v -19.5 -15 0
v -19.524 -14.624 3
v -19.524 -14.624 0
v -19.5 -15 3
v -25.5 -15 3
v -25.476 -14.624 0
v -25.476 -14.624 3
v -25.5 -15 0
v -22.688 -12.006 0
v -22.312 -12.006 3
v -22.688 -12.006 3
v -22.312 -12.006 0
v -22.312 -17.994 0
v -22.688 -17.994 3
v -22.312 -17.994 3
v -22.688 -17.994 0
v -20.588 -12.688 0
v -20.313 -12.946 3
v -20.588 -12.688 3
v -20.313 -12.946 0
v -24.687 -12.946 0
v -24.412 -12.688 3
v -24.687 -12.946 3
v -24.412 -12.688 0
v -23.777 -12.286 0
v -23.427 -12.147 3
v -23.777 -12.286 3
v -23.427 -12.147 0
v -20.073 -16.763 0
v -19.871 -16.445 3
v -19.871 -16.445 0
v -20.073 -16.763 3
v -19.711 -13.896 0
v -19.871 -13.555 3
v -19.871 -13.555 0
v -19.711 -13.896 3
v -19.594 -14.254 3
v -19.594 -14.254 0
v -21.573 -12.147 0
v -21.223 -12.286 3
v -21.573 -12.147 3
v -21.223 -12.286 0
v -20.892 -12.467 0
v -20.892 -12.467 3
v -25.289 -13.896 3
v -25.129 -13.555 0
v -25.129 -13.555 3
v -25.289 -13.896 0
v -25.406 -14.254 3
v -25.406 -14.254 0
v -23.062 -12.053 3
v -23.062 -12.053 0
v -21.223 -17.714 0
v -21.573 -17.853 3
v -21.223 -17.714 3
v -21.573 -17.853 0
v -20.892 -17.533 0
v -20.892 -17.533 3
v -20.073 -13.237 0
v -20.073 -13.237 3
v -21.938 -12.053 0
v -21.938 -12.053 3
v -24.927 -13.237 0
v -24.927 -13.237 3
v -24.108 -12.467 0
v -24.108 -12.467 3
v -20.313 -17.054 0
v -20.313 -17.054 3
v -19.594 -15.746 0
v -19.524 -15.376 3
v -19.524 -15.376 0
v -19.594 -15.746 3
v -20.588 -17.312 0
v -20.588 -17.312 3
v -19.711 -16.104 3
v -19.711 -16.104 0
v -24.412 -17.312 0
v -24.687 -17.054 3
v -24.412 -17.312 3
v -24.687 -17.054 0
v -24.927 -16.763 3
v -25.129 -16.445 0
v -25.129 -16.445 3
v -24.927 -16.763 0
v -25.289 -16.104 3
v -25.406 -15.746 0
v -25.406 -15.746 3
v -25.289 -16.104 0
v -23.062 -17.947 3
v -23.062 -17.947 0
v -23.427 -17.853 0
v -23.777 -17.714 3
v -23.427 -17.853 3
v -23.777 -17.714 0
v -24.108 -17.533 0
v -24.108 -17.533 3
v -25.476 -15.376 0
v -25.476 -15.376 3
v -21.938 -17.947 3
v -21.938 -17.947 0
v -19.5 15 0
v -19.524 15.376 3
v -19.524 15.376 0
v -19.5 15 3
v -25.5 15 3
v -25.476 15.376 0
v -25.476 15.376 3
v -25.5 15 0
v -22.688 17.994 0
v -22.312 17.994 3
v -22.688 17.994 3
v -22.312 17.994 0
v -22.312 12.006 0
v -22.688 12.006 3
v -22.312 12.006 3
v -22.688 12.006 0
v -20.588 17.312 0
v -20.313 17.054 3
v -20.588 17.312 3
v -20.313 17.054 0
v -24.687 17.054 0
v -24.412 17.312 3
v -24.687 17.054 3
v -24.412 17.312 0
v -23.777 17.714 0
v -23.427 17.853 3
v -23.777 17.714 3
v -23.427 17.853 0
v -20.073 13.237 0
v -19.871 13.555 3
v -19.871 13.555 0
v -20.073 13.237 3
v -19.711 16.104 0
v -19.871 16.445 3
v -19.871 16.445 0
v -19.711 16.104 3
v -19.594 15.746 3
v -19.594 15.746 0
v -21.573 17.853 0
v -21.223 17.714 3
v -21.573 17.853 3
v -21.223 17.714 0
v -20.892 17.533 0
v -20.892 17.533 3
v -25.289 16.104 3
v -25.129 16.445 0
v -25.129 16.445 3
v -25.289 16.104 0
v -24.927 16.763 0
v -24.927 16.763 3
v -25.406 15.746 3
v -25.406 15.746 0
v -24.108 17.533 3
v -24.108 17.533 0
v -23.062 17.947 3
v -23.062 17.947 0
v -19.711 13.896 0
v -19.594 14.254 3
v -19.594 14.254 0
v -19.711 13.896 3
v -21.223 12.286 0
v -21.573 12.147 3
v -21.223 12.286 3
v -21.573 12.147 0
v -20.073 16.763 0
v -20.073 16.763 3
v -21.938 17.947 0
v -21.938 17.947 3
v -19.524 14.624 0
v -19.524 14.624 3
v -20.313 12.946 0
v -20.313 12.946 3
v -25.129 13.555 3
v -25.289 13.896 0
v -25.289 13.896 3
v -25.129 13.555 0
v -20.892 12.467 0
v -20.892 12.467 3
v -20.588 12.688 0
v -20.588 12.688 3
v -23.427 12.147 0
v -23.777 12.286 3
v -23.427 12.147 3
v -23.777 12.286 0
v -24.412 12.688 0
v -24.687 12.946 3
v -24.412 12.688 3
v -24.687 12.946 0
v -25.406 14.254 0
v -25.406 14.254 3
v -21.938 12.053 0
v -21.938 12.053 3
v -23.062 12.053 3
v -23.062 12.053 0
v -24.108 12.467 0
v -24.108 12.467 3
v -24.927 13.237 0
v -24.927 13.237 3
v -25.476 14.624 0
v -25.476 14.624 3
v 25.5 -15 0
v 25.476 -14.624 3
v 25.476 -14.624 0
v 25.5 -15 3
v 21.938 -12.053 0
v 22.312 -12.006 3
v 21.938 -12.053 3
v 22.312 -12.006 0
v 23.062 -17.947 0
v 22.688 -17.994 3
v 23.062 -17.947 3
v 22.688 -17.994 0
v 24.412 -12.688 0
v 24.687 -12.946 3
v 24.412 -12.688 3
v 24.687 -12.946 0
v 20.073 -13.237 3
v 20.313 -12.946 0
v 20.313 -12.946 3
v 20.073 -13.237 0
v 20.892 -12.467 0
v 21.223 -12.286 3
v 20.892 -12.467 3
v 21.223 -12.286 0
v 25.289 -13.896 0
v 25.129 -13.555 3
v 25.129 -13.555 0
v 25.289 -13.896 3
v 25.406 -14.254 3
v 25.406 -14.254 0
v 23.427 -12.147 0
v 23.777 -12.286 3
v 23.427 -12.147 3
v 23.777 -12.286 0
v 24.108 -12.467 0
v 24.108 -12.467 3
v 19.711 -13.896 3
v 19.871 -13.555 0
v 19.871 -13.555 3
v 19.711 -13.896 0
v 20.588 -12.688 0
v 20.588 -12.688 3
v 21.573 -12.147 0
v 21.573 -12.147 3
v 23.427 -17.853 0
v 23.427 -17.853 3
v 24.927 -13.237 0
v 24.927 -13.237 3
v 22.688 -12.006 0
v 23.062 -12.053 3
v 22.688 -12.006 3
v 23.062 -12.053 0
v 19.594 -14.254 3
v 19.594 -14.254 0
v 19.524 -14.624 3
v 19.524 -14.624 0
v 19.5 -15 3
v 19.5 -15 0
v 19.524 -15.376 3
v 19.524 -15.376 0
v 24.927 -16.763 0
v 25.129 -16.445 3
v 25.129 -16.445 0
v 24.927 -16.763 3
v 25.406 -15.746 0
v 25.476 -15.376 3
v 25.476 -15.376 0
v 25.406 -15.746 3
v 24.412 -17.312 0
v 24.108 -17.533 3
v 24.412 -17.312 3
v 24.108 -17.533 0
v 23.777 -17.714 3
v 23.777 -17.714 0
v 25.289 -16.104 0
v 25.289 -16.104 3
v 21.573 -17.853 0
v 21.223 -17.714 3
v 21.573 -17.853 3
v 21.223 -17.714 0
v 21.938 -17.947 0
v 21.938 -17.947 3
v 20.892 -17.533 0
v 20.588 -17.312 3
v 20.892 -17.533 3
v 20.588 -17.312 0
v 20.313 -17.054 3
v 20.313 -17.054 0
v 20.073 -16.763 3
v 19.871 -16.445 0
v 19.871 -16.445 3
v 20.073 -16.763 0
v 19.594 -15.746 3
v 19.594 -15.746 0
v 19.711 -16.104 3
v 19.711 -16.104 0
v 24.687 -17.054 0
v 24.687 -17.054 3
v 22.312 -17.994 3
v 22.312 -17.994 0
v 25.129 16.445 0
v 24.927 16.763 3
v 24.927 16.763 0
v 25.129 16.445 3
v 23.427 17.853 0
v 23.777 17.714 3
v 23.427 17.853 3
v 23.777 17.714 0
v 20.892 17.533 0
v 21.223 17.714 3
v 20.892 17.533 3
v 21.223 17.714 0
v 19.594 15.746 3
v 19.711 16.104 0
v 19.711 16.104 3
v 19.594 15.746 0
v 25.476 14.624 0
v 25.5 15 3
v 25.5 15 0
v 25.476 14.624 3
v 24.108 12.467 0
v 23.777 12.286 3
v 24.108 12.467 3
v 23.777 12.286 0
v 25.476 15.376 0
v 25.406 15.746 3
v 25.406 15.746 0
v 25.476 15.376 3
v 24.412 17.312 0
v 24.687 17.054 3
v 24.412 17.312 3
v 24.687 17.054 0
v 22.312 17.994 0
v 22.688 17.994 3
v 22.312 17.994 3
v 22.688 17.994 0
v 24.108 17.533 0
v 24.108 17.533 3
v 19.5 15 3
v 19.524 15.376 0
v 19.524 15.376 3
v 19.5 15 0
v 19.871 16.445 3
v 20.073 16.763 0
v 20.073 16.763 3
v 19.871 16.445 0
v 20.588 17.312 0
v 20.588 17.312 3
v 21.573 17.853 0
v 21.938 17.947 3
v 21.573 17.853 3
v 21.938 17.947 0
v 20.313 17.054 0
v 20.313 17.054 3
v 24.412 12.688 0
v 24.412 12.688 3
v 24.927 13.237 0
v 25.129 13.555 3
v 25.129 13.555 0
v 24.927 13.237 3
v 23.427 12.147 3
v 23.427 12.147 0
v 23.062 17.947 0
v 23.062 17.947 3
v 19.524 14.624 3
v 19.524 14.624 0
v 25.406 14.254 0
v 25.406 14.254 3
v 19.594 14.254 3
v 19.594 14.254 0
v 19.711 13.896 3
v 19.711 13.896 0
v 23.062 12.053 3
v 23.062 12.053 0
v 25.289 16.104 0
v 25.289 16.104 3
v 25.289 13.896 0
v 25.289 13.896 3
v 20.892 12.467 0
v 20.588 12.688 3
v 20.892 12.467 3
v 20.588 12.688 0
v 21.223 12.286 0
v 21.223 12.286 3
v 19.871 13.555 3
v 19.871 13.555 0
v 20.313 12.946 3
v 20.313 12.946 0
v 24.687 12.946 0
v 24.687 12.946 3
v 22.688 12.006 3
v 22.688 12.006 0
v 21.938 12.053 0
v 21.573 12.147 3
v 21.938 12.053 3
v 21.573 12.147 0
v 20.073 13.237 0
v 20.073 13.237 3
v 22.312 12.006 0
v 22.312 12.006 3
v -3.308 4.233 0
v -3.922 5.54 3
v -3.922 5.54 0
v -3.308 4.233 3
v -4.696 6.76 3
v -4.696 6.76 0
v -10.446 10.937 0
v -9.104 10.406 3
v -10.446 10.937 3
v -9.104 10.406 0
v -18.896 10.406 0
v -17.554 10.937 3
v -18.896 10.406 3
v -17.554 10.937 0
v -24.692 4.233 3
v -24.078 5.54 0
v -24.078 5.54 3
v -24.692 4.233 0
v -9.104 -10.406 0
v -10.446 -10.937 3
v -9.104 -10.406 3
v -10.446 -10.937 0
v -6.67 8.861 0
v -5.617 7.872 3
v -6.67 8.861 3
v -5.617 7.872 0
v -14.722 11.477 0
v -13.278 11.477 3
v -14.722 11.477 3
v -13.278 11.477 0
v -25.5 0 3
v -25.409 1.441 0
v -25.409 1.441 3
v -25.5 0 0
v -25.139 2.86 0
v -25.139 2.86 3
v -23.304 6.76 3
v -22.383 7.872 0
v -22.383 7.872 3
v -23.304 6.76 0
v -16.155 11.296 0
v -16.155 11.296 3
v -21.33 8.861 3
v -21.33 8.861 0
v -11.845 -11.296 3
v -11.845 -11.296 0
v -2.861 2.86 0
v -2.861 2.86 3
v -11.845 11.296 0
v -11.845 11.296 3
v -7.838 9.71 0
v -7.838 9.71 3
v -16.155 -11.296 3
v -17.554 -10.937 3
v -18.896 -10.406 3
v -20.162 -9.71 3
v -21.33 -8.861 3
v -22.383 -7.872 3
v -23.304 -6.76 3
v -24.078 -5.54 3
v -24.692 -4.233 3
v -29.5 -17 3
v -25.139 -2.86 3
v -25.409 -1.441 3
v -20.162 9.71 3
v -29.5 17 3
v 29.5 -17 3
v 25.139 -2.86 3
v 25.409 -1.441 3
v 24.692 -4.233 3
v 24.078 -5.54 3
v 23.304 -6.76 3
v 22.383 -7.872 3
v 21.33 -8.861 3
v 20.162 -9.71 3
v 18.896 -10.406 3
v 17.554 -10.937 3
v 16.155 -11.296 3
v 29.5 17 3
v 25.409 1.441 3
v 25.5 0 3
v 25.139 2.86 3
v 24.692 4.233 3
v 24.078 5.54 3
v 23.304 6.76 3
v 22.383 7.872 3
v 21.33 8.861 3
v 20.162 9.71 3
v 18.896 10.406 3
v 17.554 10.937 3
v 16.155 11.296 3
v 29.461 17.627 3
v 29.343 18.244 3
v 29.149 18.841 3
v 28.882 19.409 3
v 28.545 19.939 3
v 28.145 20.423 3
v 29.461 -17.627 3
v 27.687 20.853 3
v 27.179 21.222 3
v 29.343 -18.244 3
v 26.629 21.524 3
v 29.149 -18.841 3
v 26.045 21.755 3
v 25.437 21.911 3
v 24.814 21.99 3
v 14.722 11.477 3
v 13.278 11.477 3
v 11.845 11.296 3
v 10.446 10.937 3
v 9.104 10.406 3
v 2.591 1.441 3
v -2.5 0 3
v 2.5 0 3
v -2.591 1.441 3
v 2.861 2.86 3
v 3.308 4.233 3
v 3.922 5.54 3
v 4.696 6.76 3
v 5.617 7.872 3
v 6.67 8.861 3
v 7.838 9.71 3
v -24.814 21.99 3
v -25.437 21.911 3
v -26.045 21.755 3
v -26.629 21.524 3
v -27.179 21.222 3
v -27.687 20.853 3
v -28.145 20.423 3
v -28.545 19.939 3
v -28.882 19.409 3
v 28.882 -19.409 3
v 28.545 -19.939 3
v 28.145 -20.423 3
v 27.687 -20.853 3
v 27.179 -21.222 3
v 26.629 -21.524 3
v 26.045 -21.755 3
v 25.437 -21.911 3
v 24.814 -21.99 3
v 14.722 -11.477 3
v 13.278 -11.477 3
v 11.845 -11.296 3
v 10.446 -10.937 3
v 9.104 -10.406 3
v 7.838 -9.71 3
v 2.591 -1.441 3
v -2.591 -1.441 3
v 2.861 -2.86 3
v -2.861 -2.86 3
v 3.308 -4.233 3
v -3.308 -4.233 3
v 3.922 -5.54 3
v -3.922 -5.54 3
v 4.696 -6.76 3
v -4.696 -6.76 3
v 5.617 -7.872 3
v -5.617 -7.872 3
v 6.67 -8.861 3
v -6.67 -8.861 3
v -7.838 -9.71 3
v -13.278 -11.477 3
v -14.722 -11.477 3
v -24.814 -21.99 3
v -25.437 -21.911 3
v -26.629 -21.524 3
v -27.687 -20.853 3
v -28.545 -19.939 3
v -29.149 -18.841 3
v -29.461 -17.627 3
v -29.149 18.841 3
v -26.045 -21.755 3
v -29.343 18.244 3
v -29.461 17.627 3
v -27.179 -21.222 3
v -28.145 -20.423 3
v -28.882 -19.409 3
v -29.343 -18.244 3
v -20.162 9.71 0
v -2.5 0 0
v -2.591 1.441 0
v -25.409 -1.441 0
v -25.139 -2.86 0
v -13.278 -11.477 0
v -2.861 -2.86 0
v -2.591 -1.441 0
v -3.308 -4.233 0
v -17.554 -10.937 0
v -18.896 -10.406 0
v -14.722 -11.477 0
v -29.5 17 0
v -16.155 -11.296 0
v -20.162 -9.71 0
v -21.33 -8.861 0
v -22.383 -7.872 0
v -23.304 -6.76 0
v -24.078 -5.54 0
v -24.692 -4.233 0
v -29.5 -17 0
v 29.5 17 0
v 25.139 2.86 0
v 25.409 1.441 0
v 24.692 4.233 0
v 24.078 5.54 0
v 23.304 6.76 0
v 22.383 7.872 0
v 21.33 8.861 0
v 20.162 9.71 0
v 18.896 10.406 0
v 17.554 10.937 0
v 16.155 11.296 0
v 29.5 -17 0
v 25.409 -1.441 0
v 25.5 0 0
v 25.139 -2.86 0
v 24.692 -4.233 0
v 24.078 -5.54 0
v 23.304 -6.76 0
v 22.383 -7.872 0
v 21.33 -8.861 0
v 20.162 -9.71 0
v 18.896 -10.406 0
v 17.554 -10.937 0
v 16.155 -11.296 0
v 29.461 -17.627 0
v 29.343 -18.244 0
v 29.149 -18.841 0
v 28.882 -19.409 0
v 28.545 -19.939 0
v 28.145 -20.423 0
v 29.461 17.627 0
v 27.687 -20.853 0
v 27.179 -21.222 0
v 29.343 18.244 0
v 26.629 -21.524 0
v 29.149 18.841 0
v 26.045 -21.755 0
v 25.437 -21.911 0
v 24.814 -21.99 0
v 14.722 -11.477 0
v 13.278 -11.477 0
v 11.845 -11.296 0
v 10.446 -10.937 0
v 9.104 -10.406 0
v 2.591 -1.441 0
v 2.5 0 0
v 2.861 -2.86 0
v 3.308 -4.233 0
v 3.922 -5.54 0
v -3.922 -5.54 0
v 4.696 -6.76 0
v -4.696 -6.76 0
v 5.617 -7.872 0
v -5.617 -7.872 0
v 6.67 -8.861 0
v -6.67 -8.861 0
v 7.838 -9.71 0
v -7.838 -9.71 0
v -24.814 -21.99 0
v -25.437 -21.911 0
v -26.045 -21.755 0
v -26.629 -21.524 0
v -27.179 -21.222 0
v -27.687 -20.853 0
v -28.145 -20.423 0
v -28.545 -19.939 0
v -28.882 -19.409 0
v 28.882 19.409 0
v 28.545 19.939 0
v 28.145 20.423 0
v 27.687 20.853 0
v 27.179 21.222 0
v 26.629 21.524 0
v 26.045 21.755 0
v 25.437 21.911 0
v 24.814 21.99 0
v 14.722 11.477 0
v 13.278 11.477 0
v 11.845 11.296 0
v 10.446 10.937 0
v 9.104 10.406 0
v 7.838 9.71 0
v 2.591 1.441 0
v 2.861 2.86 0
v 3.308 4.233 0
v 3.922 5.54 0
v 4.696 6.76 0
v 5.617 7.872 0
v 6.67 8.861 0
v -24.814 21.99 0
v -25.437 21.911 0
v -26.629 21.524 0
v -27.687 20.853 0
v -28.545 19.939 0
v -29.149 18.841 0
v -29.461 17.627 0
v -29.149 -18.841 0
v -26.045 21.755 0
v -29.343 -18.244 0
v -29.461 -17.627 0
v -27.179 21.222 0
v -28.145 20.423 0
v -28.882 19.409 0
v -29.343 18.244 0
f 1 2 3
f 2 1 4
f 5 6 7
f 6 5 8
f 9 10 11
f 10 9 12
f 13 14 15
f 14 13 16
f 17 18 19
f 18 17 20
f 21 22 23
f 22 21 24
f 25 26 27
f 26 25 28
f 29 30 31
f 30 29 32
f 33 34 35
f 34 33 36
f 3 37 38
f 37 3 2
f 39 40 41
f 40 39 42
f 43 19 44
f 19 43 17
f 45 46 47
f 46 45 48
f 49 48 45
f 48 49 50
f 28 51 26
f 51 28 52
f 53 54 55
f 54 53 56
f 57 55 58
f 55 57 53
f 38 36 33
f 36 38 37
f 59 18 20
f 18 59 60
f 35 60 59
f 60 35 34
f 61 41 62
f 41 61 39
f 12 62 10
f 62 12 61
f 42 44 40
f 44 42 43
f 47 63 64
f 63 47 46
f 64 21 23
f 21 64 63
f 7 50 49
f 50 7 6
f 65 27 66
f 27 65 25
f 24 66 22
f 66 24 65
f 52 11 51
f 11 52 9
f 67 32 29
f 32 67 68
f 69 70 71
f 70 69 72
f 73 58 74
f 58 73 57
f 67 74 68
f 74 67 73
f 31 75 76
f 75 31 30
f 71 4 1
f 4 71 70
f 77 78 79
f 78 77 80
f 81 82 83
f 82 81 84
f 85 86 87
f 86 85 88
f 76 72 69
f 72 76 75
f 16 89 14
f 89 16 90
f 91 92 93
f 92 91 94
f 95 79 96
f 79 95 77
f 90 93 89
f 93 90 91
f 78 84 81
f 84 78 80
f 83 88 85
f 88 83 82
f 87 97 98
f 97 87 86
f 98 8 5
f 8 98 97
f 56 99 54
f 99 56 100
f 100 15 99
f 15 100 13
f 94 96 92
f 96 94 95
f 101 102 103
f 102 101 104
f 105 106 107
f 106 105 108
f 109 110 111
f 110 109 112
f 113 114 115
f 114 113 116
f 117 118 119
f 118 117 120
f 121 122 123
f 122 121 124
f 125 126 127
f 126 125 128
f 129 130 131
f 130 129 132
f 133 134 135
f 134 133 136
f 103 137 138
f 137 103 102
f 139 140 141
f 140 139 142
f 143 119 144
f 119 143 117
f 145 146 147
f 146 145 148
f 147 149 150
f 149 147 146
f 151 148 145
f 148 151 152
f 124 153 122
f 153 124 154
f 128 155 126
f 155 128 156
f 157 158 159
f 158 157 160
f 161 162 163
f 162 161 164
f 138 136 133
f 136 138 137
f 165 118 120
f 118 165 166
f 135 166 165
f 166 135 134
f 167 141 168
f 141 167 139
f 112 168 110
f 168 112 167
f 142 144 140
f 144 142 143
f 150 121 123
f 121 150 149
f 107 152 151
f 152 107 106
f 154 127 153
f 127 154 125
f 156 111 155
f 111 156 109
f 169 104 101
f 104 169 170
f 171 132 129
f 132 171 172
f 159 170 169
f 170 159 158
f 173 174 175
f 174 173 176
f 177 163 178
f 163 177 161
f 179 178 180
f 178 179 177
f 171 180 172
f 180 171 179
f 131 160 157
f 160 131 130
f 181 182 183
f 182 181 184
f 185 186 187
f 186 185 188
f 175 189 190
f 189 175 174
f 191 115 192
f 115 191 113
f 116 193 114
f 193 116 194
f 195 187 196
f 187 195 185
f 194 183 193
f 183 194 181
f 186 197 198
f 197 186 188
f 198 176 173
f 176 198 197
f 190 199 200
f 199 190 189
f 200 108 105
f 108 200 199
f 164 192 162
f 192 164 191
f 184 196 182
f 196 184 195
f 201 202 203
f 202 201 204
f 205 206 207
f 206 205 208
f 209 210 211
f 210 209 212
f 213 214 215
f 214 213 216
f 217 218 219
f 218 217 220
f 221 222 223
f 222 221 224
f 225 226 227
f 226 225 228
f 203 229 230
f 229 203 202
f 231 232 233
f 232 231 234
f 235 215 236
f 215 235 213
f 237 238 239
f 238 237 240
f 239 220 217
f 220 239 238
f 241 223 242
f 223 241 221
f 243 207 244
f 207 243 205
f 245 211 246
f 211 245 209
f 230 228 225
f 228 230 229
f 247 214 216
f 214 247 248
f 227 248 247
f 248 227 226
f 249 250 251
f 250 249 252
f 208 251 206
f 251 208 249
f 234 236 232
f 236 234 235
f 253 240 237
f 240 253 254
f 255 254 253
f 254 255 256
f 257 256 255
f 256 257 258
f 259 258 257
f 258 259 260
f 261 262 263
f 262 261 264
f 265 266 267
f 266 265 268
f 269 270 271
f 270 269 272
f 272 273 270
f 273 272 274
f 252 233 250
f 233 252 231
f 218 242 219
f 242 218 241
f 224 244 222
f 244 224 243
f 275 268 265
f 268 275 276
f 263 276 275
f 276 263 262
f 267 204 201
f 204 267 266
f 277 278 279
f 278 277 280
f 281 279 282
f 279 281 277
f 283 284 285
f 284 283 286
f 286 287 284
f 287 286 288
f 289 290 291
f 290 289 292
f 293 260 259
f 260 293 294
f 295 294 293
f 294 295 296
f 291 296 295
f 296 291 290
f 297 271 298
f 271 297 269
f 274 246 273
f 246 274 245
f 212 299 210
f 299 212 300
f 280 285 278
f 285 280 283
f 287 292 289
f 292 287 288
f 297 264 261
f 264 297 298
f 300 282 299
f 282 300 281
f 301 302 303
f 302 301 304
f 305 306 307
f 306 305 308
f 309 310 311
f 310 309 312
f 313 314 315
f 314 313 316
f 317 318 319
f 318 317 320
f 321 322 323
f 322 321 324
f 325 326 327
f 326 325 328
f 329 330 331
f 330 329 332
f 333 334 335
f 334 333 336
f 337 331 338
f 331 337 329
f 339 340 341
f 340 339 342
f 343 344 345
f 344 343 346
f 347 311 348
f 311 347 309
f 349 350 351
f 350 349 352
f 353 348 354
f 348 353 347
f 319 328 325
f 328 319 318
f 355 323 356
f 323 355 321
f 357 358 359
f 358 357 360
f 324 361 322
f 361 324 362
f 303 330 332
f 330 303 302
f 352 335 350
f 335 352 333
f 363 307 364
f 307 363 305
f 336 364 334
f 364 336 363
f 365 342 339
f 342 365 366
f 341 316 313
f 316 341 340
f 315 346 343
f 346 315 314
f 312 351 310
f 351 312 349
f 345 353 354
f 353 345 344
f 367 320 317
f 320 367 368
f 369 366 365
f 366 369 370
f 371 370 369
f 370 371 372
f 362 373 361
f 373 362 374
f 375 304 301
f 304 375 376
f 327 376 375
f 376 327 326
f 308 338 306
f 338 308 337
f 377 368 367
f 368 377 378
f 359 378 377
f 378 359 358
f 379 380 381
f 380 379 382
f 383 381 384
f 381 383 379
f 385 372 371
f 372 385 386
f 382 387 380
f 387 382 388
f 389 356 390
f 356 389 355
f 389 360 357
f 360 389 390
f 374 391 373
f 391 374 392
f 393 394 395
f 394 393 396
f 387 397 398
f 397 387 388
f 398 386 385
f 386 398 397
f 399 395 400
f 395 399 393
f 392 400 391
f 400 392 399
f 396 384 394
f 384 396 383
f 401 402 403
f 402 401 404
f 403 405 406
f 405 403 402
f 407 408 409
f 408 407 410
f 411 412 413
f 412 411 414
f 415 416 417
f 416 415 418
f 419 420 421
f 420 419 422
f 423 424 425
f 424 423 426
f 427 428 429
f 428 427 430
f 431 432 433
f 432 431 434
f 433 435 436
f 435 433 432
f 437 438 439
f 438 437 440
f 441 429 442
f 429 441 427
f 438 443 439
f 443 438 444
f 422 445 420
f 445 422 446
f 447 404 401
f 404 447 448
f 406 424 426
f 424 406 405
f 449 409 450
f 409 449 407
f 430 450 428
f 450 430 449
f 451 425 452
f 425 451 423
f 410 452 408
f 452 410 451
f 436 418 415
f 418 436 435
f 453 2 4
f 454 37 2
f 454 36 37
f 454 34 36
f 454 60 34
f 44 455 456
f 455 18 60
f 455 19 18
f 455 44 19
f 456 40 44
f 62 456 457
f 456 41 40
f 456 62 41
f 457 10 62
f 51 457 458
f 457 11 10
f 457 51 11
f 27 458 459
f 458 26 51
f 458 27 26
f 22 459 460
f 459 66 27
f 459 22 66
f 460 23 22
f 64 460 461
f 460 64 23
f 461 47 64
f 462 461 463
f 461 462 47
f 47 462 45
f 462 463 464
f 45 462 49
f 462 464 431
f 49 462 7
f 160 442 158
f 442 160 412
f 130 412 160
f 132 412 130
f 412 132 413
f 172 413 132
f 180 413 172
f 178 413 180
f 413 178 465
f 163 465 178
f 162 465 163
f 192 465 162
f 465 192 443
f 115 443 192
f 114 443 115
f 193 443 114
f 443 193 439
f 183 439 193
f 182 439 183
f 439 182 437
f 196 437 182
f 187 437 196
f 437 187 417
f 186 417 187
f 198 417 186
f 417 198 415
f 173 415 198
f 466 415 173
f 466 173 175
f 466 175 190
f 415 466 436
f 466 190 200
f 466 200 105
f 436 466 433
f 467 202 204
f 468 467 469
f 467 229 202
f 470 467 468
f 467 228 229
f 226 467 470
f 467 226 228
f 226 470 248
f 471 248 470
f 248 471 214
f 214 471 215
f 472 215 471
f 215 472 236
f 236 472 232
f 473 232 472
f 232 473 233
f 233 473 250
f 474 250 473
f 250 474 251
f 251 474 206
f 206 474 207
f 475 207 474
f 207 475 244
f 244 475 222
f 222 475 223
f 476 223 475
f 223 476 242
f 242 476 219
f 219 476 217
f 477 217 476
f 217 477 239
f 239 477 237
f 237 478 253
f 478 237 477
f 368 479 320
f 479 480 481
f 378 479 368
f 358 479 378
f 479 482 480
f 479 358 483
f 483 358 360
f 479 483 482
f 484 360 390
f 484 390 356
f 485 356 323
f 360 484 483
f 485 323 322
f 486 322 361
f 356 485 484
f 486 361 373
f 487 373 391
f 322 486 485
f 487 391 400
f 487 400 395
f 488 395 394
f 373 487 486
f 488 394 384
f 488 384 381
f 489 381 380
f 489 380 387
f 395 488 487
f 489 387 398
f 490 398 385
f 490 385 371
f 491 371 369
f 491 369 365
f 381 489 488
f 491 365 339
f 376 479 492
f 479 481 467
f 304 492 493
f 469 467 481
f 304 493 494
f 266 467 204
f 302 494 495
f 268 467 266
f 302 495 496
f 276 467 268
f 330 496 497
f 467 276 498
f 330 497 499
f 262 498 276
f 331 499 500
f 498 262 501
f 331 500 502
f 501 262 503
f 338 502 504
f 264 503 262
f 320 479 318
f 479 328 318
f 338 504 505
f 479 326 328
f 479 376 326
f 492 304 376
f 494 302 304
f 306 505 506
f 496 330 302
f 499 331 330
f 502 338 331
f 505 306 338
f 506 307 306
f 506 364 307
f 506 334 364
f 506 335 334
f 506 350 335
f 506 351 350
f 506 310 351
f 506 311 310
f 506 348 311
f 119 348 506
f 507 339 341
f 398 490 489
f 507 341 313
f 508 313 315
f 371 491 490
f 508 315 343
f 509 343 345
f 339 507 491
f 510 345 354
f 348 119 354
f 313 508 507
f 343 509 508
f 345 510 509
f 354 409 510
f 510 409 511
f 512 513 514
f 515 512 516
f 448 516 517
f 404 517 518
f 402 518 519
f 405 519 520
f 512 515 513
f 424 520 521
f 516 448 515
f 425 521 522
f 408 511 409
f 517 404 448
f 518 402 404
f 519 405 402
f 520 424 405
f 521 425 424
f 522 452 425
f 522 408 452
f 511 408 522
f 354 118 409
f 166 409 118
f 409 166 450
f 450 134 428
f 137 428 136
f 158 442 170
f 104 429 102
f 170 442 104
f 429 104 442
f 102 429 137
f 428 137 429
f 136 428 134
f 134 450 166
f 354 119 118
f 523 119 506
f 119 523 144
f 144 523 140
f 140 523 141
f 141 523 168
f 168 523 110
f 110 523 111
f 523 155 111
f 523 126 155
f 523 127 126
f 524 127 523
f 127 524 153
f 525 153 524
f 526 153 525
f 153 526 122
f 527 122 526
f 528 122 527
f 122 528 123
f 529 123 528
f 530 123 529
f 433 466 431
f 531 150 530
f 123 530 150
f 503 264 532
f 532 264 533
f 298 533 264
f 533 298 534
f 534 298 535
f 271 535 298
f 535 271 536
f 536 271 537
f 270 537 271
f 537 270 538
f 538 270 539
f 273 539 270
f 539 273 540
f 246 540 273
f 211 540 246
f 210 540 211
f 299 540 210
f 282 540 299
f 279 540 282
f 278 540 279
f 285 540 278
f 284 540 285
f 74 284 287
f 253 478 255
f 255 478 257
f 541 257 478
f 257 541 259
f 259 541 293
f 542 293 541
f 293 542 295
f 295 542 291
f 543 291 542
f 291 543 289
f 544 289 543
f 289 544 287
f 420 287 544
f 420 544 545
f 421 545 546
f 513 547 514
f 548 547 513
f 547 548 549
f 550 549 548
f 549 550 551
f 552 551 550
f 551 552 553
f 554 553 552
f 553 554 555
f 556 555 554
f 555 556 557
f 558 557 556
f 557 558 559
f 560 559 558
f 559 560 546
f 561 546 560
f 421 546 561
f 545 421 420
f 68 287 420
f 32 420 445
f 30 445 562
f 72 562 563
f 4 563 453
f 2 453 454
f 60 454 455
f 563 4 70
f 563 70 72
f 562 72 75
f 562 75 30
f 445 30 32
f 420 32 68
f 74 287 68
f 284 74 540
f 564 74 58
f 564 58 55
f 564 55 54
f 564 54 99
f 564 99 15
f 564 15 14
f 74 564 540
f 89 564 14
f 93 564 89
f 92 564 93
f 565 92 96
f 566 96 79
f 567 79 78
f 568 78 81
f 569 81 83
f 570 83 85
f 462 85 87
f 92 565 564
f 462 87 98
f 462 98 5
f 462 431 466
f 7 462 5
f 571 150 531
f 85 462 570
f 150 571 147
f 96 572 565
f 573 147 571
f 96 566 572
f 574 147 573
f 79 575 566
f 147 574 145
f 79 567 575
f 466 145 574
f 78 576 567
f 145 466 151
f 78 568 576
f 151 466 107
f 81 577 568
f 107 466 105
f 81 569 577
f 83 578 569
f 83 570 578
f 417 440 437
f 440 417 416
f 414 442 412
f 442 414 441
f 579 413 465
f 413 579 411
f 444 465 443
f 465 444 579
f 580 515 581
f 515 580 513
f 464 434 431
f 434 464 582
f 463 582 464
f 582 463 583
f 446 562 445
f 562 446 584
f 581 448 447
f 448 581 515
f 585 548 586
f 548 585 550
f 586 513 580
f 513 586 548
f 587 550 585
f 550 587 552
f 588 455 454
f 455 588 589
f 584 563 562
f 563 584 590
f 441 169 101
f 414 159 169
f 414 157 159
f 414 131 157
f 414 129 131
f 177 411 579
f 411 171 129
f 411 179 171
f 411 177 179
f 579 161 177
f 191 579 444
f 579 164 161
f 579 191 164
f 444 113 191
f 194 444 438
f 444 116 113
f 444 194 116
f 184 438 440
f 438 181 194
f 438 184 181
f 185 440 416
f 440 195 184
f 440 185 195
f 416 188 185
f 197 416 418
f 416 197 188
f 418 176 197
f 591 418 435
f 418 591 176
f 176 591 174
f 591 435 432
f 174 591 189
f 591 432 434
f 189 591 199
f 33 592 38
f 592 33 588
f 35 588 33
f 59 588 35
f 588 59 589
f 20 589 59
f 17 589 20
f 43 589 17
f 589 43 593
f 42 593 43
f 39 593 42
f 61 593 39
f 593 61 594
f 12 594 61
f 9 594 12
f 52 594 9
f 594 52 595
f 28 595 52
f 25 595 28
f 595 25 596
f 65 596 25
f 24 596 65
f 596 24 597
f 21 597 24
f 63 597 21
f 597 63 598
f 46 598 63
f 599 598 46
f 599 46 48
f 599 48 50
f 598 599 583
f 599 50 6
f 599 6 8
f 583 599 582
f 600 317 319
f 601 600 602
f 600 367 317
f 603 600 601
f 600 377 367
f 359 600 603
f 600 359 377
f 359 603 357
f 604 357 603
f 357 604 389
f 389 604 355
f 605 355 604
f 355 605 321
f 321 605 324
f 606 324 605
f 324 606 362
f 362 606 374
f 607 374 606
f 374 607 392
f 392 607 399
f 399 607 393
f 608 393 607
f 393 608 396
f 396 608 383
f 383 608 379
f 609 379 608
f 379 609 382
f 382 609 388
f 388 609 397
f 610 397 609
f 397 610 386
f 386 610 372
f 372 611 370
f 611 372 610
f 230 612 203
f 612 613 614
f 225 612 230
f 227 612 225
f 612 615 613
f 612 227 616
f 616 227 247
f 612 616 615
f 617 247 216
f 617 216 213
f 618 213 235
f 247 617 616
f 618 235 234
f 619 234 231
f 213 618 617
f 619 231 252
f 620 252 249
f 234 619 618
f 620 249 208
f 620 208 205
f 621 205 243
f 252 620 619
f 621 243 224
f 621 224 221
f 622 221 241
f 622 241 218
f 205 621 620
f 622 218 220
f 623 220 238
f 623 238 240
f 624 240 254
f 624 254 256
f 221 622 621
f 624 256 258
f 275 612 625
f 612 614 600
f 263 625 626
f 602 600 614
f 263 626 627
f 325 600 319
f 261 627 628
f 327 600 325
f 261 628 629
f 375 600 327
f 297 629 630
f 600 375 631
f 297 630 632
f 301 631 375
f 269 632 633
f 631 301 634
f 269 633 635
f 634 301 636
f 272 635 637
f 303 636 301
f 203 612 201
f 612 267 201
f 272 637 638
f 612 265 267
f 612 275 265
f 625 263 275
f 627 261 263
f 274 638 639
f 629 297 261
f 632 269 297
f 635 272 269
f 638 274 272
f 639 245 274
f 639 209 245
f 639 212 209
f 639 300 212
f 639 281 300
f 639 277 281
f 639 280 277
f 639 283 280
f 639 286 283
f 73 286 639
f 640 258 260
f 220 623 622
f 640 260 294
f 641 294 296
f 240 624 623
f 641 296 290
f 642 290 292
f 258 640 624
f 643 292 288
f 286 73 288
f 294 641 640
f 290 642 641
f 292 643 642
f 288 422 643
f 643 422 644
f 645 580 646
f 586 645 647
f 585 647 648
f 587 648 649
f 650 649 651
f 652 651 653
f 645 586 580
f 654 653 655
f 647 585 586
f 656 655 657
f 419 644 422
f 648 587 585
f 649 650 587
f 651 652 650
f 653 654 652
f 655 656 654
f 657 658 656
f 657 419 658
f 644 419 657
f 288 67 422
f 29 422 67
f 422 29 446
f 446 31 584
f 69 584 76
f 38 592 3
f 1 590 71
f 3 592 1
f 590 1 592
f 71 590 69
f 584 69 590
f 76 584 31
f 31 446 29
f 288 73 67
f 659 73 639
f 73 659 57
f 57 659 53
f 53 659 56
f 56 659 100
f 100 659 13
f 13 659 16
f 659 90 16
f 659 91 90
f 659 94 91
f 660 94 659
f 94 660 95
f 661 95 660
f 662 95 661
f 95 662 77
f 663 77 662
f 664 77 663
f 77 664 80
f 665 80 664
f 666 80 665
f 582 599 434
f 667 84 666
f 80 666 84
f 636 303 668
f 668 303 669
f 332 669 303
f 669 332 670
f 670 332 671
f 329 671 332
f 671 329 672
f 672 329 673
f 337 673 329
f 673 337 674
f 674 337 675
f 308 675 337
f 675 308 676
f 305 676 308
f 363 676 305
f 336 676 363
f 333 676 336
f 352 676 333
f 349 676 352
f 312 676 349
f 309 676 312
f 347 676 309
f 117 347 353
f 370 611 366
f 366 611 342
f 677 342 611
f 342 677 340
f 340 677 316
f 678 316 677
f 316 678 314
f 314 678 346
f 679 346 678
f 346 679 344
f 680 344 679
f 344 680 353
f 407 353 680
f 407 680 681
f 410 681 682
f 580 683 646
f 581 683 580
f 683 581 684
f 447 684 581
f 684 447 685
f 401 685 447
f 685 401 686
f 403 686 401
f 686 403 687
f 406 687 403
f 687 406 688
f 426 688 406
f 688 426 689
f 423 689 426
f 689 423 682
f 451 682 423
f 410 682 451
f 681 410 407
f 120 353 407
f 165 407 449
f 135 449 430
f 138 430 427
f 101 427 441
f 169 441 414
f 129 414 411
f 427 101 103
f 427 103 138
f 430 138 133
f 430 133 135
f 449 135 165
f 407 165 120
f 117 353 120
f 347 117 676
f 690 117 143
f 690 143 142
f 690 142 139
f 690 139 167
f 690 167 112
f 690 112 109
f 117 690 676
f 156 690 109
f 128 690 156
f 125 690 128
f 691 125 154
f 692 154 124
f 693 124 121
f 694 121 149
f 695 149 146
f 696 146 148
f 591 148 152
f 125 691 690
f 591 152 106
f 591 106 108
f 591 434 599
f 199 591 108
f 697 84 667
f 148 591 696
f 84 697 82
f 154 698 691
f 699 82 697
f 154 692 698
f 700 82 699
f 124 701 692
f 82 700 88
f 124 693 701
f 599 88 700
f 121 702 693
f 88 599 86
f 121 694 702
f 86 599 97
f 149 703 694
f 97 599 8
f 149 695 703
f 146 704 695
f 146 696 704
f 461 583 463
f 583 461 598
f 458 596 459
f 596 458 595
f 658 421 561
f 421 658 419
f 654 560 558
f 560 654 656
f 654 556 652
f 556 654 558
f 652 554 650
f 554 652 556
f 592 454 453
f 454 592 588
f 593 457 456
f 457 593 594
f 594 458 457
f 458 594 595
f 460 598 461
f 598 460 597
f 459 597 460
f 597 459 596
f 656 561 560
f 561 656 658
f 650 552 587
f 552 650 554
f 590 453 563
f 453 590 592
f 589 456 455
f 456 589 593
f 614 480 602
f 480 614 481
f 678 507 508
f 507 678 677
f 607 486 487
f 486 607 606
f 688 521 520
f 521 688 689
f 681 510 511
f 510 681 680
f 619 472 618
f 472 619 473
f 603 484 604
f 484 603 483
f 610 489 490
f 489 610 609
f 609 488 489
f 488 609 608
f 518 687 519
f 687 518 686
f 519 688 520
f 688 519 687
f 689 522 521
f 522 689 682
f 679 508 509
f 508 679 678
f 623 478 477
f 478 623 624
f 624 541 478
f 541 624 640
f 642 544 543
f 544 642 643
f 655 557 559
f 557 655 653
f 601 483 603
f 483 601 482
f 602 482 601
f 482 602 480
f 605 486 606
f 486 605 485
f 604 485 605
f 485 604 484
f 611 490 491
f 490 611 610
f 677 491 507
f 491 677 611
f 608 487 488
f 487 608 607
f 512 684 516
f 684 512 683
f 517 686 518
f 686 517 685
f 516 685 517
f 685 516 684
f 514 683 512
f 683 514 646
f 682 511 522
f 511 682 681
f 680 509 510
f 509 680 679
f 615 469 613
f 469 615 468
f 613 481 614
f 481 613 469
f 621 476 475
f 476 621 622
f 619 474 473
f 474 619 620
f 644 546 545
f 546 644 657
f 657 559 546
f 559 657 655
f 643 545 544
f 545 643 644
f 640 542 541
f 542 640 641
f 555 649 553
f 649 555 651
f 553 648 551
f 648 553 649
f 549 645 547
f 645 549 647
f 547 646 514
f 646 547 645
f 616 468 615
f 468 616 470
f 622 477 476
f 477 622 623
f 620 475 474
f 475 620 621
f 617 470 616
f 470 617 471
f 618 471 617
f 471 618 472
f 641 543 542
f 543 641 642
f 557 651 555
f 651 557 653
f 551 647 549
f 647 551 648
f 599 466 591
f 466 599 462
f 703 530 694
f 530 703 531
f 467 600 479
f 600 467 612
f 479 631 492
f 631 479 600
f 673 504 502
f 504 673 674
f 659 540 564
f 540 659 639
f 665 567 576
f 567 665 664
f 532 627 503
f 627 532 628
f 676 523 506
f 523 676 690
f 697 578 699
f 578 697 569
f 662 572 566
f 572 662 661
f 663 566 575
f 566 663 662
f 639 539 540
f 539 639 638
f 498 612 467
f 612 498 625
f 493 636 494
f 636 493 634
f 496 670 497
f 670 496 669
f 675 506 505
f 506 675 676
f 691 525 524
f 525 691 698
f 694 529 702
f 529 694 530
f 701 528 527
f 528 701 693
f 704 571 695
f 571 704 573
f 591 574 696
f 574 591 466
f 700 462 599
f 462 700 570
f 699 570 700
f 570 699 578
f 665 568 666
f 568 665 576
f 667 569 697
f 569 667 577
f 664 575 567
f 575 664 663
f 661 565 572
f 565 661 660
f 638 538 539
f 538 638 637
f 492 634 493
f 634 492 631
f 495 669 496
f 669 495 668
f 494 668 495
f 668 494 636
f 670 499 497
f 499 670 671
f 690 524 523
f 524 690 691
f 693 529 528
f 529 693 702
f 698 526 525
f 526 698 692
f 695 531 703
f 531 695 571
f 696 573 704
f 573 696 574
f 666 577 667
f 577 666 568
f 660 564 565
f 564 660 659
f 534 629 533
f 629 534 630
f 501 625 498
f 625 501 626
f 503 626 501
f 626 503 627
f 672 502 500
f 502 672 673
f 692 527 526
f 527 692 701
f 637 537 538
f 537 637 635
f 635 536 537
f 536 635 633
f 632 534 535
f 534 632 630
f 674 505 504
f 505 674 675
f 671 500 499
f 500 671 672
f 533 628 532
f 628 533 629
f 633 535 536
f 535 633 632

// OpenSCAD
$fn = 50;


difference() {
	union() {
		hull() {
			translate(v = [-24.5000000000, 17.0000000000, 0]) {
				cylinder(h = 3, r = 5);
			}
			translate(v = [24.5000000000, 17.0000000000, 0]) {
				cylinder(h = 3, r = 5);
			}
			translate(v = [-24.5000000000, -17.0000000000, 0]) {
				cylinder(h = 3, r = 5);
			}
			translate(v = [24.5000000000, -17.0000000000, 0]) {
				cylinder(h = 3, r = 5);
			}
		}
	}
	union() {
		#translate(v = [-22.5000000000, -15.0000000000, -100.0000000000]) {
			cylinder(h = 200, r = 3.0000000000);
		}
		#translate(v = [-22.5000000000, 15.0000000000, -100.0000000000]) {
			cylinder(h = 200, r = 3.0000000000);
		}
		#translate(v = [22.5000000000, -15.0000000000, -100.0000000000]) {
			cylinder(h = 200, r = 3.0000000000);
		}
		#translate(v = [22.5000000000, 15.0000000000, -100.0000000000]) {
			cylinder(h = 200, r = 3.0000000000);
		}
		#translate(v = [-14.0000000000, 0, 0]) {
			cylinder(h = 3, r = 11.5000000000);
		}
		#translate(v = [14.0000000000, 0, 0]) {
			cylinder(h = 3, r = 11.5000000000);
		}
	}
}
